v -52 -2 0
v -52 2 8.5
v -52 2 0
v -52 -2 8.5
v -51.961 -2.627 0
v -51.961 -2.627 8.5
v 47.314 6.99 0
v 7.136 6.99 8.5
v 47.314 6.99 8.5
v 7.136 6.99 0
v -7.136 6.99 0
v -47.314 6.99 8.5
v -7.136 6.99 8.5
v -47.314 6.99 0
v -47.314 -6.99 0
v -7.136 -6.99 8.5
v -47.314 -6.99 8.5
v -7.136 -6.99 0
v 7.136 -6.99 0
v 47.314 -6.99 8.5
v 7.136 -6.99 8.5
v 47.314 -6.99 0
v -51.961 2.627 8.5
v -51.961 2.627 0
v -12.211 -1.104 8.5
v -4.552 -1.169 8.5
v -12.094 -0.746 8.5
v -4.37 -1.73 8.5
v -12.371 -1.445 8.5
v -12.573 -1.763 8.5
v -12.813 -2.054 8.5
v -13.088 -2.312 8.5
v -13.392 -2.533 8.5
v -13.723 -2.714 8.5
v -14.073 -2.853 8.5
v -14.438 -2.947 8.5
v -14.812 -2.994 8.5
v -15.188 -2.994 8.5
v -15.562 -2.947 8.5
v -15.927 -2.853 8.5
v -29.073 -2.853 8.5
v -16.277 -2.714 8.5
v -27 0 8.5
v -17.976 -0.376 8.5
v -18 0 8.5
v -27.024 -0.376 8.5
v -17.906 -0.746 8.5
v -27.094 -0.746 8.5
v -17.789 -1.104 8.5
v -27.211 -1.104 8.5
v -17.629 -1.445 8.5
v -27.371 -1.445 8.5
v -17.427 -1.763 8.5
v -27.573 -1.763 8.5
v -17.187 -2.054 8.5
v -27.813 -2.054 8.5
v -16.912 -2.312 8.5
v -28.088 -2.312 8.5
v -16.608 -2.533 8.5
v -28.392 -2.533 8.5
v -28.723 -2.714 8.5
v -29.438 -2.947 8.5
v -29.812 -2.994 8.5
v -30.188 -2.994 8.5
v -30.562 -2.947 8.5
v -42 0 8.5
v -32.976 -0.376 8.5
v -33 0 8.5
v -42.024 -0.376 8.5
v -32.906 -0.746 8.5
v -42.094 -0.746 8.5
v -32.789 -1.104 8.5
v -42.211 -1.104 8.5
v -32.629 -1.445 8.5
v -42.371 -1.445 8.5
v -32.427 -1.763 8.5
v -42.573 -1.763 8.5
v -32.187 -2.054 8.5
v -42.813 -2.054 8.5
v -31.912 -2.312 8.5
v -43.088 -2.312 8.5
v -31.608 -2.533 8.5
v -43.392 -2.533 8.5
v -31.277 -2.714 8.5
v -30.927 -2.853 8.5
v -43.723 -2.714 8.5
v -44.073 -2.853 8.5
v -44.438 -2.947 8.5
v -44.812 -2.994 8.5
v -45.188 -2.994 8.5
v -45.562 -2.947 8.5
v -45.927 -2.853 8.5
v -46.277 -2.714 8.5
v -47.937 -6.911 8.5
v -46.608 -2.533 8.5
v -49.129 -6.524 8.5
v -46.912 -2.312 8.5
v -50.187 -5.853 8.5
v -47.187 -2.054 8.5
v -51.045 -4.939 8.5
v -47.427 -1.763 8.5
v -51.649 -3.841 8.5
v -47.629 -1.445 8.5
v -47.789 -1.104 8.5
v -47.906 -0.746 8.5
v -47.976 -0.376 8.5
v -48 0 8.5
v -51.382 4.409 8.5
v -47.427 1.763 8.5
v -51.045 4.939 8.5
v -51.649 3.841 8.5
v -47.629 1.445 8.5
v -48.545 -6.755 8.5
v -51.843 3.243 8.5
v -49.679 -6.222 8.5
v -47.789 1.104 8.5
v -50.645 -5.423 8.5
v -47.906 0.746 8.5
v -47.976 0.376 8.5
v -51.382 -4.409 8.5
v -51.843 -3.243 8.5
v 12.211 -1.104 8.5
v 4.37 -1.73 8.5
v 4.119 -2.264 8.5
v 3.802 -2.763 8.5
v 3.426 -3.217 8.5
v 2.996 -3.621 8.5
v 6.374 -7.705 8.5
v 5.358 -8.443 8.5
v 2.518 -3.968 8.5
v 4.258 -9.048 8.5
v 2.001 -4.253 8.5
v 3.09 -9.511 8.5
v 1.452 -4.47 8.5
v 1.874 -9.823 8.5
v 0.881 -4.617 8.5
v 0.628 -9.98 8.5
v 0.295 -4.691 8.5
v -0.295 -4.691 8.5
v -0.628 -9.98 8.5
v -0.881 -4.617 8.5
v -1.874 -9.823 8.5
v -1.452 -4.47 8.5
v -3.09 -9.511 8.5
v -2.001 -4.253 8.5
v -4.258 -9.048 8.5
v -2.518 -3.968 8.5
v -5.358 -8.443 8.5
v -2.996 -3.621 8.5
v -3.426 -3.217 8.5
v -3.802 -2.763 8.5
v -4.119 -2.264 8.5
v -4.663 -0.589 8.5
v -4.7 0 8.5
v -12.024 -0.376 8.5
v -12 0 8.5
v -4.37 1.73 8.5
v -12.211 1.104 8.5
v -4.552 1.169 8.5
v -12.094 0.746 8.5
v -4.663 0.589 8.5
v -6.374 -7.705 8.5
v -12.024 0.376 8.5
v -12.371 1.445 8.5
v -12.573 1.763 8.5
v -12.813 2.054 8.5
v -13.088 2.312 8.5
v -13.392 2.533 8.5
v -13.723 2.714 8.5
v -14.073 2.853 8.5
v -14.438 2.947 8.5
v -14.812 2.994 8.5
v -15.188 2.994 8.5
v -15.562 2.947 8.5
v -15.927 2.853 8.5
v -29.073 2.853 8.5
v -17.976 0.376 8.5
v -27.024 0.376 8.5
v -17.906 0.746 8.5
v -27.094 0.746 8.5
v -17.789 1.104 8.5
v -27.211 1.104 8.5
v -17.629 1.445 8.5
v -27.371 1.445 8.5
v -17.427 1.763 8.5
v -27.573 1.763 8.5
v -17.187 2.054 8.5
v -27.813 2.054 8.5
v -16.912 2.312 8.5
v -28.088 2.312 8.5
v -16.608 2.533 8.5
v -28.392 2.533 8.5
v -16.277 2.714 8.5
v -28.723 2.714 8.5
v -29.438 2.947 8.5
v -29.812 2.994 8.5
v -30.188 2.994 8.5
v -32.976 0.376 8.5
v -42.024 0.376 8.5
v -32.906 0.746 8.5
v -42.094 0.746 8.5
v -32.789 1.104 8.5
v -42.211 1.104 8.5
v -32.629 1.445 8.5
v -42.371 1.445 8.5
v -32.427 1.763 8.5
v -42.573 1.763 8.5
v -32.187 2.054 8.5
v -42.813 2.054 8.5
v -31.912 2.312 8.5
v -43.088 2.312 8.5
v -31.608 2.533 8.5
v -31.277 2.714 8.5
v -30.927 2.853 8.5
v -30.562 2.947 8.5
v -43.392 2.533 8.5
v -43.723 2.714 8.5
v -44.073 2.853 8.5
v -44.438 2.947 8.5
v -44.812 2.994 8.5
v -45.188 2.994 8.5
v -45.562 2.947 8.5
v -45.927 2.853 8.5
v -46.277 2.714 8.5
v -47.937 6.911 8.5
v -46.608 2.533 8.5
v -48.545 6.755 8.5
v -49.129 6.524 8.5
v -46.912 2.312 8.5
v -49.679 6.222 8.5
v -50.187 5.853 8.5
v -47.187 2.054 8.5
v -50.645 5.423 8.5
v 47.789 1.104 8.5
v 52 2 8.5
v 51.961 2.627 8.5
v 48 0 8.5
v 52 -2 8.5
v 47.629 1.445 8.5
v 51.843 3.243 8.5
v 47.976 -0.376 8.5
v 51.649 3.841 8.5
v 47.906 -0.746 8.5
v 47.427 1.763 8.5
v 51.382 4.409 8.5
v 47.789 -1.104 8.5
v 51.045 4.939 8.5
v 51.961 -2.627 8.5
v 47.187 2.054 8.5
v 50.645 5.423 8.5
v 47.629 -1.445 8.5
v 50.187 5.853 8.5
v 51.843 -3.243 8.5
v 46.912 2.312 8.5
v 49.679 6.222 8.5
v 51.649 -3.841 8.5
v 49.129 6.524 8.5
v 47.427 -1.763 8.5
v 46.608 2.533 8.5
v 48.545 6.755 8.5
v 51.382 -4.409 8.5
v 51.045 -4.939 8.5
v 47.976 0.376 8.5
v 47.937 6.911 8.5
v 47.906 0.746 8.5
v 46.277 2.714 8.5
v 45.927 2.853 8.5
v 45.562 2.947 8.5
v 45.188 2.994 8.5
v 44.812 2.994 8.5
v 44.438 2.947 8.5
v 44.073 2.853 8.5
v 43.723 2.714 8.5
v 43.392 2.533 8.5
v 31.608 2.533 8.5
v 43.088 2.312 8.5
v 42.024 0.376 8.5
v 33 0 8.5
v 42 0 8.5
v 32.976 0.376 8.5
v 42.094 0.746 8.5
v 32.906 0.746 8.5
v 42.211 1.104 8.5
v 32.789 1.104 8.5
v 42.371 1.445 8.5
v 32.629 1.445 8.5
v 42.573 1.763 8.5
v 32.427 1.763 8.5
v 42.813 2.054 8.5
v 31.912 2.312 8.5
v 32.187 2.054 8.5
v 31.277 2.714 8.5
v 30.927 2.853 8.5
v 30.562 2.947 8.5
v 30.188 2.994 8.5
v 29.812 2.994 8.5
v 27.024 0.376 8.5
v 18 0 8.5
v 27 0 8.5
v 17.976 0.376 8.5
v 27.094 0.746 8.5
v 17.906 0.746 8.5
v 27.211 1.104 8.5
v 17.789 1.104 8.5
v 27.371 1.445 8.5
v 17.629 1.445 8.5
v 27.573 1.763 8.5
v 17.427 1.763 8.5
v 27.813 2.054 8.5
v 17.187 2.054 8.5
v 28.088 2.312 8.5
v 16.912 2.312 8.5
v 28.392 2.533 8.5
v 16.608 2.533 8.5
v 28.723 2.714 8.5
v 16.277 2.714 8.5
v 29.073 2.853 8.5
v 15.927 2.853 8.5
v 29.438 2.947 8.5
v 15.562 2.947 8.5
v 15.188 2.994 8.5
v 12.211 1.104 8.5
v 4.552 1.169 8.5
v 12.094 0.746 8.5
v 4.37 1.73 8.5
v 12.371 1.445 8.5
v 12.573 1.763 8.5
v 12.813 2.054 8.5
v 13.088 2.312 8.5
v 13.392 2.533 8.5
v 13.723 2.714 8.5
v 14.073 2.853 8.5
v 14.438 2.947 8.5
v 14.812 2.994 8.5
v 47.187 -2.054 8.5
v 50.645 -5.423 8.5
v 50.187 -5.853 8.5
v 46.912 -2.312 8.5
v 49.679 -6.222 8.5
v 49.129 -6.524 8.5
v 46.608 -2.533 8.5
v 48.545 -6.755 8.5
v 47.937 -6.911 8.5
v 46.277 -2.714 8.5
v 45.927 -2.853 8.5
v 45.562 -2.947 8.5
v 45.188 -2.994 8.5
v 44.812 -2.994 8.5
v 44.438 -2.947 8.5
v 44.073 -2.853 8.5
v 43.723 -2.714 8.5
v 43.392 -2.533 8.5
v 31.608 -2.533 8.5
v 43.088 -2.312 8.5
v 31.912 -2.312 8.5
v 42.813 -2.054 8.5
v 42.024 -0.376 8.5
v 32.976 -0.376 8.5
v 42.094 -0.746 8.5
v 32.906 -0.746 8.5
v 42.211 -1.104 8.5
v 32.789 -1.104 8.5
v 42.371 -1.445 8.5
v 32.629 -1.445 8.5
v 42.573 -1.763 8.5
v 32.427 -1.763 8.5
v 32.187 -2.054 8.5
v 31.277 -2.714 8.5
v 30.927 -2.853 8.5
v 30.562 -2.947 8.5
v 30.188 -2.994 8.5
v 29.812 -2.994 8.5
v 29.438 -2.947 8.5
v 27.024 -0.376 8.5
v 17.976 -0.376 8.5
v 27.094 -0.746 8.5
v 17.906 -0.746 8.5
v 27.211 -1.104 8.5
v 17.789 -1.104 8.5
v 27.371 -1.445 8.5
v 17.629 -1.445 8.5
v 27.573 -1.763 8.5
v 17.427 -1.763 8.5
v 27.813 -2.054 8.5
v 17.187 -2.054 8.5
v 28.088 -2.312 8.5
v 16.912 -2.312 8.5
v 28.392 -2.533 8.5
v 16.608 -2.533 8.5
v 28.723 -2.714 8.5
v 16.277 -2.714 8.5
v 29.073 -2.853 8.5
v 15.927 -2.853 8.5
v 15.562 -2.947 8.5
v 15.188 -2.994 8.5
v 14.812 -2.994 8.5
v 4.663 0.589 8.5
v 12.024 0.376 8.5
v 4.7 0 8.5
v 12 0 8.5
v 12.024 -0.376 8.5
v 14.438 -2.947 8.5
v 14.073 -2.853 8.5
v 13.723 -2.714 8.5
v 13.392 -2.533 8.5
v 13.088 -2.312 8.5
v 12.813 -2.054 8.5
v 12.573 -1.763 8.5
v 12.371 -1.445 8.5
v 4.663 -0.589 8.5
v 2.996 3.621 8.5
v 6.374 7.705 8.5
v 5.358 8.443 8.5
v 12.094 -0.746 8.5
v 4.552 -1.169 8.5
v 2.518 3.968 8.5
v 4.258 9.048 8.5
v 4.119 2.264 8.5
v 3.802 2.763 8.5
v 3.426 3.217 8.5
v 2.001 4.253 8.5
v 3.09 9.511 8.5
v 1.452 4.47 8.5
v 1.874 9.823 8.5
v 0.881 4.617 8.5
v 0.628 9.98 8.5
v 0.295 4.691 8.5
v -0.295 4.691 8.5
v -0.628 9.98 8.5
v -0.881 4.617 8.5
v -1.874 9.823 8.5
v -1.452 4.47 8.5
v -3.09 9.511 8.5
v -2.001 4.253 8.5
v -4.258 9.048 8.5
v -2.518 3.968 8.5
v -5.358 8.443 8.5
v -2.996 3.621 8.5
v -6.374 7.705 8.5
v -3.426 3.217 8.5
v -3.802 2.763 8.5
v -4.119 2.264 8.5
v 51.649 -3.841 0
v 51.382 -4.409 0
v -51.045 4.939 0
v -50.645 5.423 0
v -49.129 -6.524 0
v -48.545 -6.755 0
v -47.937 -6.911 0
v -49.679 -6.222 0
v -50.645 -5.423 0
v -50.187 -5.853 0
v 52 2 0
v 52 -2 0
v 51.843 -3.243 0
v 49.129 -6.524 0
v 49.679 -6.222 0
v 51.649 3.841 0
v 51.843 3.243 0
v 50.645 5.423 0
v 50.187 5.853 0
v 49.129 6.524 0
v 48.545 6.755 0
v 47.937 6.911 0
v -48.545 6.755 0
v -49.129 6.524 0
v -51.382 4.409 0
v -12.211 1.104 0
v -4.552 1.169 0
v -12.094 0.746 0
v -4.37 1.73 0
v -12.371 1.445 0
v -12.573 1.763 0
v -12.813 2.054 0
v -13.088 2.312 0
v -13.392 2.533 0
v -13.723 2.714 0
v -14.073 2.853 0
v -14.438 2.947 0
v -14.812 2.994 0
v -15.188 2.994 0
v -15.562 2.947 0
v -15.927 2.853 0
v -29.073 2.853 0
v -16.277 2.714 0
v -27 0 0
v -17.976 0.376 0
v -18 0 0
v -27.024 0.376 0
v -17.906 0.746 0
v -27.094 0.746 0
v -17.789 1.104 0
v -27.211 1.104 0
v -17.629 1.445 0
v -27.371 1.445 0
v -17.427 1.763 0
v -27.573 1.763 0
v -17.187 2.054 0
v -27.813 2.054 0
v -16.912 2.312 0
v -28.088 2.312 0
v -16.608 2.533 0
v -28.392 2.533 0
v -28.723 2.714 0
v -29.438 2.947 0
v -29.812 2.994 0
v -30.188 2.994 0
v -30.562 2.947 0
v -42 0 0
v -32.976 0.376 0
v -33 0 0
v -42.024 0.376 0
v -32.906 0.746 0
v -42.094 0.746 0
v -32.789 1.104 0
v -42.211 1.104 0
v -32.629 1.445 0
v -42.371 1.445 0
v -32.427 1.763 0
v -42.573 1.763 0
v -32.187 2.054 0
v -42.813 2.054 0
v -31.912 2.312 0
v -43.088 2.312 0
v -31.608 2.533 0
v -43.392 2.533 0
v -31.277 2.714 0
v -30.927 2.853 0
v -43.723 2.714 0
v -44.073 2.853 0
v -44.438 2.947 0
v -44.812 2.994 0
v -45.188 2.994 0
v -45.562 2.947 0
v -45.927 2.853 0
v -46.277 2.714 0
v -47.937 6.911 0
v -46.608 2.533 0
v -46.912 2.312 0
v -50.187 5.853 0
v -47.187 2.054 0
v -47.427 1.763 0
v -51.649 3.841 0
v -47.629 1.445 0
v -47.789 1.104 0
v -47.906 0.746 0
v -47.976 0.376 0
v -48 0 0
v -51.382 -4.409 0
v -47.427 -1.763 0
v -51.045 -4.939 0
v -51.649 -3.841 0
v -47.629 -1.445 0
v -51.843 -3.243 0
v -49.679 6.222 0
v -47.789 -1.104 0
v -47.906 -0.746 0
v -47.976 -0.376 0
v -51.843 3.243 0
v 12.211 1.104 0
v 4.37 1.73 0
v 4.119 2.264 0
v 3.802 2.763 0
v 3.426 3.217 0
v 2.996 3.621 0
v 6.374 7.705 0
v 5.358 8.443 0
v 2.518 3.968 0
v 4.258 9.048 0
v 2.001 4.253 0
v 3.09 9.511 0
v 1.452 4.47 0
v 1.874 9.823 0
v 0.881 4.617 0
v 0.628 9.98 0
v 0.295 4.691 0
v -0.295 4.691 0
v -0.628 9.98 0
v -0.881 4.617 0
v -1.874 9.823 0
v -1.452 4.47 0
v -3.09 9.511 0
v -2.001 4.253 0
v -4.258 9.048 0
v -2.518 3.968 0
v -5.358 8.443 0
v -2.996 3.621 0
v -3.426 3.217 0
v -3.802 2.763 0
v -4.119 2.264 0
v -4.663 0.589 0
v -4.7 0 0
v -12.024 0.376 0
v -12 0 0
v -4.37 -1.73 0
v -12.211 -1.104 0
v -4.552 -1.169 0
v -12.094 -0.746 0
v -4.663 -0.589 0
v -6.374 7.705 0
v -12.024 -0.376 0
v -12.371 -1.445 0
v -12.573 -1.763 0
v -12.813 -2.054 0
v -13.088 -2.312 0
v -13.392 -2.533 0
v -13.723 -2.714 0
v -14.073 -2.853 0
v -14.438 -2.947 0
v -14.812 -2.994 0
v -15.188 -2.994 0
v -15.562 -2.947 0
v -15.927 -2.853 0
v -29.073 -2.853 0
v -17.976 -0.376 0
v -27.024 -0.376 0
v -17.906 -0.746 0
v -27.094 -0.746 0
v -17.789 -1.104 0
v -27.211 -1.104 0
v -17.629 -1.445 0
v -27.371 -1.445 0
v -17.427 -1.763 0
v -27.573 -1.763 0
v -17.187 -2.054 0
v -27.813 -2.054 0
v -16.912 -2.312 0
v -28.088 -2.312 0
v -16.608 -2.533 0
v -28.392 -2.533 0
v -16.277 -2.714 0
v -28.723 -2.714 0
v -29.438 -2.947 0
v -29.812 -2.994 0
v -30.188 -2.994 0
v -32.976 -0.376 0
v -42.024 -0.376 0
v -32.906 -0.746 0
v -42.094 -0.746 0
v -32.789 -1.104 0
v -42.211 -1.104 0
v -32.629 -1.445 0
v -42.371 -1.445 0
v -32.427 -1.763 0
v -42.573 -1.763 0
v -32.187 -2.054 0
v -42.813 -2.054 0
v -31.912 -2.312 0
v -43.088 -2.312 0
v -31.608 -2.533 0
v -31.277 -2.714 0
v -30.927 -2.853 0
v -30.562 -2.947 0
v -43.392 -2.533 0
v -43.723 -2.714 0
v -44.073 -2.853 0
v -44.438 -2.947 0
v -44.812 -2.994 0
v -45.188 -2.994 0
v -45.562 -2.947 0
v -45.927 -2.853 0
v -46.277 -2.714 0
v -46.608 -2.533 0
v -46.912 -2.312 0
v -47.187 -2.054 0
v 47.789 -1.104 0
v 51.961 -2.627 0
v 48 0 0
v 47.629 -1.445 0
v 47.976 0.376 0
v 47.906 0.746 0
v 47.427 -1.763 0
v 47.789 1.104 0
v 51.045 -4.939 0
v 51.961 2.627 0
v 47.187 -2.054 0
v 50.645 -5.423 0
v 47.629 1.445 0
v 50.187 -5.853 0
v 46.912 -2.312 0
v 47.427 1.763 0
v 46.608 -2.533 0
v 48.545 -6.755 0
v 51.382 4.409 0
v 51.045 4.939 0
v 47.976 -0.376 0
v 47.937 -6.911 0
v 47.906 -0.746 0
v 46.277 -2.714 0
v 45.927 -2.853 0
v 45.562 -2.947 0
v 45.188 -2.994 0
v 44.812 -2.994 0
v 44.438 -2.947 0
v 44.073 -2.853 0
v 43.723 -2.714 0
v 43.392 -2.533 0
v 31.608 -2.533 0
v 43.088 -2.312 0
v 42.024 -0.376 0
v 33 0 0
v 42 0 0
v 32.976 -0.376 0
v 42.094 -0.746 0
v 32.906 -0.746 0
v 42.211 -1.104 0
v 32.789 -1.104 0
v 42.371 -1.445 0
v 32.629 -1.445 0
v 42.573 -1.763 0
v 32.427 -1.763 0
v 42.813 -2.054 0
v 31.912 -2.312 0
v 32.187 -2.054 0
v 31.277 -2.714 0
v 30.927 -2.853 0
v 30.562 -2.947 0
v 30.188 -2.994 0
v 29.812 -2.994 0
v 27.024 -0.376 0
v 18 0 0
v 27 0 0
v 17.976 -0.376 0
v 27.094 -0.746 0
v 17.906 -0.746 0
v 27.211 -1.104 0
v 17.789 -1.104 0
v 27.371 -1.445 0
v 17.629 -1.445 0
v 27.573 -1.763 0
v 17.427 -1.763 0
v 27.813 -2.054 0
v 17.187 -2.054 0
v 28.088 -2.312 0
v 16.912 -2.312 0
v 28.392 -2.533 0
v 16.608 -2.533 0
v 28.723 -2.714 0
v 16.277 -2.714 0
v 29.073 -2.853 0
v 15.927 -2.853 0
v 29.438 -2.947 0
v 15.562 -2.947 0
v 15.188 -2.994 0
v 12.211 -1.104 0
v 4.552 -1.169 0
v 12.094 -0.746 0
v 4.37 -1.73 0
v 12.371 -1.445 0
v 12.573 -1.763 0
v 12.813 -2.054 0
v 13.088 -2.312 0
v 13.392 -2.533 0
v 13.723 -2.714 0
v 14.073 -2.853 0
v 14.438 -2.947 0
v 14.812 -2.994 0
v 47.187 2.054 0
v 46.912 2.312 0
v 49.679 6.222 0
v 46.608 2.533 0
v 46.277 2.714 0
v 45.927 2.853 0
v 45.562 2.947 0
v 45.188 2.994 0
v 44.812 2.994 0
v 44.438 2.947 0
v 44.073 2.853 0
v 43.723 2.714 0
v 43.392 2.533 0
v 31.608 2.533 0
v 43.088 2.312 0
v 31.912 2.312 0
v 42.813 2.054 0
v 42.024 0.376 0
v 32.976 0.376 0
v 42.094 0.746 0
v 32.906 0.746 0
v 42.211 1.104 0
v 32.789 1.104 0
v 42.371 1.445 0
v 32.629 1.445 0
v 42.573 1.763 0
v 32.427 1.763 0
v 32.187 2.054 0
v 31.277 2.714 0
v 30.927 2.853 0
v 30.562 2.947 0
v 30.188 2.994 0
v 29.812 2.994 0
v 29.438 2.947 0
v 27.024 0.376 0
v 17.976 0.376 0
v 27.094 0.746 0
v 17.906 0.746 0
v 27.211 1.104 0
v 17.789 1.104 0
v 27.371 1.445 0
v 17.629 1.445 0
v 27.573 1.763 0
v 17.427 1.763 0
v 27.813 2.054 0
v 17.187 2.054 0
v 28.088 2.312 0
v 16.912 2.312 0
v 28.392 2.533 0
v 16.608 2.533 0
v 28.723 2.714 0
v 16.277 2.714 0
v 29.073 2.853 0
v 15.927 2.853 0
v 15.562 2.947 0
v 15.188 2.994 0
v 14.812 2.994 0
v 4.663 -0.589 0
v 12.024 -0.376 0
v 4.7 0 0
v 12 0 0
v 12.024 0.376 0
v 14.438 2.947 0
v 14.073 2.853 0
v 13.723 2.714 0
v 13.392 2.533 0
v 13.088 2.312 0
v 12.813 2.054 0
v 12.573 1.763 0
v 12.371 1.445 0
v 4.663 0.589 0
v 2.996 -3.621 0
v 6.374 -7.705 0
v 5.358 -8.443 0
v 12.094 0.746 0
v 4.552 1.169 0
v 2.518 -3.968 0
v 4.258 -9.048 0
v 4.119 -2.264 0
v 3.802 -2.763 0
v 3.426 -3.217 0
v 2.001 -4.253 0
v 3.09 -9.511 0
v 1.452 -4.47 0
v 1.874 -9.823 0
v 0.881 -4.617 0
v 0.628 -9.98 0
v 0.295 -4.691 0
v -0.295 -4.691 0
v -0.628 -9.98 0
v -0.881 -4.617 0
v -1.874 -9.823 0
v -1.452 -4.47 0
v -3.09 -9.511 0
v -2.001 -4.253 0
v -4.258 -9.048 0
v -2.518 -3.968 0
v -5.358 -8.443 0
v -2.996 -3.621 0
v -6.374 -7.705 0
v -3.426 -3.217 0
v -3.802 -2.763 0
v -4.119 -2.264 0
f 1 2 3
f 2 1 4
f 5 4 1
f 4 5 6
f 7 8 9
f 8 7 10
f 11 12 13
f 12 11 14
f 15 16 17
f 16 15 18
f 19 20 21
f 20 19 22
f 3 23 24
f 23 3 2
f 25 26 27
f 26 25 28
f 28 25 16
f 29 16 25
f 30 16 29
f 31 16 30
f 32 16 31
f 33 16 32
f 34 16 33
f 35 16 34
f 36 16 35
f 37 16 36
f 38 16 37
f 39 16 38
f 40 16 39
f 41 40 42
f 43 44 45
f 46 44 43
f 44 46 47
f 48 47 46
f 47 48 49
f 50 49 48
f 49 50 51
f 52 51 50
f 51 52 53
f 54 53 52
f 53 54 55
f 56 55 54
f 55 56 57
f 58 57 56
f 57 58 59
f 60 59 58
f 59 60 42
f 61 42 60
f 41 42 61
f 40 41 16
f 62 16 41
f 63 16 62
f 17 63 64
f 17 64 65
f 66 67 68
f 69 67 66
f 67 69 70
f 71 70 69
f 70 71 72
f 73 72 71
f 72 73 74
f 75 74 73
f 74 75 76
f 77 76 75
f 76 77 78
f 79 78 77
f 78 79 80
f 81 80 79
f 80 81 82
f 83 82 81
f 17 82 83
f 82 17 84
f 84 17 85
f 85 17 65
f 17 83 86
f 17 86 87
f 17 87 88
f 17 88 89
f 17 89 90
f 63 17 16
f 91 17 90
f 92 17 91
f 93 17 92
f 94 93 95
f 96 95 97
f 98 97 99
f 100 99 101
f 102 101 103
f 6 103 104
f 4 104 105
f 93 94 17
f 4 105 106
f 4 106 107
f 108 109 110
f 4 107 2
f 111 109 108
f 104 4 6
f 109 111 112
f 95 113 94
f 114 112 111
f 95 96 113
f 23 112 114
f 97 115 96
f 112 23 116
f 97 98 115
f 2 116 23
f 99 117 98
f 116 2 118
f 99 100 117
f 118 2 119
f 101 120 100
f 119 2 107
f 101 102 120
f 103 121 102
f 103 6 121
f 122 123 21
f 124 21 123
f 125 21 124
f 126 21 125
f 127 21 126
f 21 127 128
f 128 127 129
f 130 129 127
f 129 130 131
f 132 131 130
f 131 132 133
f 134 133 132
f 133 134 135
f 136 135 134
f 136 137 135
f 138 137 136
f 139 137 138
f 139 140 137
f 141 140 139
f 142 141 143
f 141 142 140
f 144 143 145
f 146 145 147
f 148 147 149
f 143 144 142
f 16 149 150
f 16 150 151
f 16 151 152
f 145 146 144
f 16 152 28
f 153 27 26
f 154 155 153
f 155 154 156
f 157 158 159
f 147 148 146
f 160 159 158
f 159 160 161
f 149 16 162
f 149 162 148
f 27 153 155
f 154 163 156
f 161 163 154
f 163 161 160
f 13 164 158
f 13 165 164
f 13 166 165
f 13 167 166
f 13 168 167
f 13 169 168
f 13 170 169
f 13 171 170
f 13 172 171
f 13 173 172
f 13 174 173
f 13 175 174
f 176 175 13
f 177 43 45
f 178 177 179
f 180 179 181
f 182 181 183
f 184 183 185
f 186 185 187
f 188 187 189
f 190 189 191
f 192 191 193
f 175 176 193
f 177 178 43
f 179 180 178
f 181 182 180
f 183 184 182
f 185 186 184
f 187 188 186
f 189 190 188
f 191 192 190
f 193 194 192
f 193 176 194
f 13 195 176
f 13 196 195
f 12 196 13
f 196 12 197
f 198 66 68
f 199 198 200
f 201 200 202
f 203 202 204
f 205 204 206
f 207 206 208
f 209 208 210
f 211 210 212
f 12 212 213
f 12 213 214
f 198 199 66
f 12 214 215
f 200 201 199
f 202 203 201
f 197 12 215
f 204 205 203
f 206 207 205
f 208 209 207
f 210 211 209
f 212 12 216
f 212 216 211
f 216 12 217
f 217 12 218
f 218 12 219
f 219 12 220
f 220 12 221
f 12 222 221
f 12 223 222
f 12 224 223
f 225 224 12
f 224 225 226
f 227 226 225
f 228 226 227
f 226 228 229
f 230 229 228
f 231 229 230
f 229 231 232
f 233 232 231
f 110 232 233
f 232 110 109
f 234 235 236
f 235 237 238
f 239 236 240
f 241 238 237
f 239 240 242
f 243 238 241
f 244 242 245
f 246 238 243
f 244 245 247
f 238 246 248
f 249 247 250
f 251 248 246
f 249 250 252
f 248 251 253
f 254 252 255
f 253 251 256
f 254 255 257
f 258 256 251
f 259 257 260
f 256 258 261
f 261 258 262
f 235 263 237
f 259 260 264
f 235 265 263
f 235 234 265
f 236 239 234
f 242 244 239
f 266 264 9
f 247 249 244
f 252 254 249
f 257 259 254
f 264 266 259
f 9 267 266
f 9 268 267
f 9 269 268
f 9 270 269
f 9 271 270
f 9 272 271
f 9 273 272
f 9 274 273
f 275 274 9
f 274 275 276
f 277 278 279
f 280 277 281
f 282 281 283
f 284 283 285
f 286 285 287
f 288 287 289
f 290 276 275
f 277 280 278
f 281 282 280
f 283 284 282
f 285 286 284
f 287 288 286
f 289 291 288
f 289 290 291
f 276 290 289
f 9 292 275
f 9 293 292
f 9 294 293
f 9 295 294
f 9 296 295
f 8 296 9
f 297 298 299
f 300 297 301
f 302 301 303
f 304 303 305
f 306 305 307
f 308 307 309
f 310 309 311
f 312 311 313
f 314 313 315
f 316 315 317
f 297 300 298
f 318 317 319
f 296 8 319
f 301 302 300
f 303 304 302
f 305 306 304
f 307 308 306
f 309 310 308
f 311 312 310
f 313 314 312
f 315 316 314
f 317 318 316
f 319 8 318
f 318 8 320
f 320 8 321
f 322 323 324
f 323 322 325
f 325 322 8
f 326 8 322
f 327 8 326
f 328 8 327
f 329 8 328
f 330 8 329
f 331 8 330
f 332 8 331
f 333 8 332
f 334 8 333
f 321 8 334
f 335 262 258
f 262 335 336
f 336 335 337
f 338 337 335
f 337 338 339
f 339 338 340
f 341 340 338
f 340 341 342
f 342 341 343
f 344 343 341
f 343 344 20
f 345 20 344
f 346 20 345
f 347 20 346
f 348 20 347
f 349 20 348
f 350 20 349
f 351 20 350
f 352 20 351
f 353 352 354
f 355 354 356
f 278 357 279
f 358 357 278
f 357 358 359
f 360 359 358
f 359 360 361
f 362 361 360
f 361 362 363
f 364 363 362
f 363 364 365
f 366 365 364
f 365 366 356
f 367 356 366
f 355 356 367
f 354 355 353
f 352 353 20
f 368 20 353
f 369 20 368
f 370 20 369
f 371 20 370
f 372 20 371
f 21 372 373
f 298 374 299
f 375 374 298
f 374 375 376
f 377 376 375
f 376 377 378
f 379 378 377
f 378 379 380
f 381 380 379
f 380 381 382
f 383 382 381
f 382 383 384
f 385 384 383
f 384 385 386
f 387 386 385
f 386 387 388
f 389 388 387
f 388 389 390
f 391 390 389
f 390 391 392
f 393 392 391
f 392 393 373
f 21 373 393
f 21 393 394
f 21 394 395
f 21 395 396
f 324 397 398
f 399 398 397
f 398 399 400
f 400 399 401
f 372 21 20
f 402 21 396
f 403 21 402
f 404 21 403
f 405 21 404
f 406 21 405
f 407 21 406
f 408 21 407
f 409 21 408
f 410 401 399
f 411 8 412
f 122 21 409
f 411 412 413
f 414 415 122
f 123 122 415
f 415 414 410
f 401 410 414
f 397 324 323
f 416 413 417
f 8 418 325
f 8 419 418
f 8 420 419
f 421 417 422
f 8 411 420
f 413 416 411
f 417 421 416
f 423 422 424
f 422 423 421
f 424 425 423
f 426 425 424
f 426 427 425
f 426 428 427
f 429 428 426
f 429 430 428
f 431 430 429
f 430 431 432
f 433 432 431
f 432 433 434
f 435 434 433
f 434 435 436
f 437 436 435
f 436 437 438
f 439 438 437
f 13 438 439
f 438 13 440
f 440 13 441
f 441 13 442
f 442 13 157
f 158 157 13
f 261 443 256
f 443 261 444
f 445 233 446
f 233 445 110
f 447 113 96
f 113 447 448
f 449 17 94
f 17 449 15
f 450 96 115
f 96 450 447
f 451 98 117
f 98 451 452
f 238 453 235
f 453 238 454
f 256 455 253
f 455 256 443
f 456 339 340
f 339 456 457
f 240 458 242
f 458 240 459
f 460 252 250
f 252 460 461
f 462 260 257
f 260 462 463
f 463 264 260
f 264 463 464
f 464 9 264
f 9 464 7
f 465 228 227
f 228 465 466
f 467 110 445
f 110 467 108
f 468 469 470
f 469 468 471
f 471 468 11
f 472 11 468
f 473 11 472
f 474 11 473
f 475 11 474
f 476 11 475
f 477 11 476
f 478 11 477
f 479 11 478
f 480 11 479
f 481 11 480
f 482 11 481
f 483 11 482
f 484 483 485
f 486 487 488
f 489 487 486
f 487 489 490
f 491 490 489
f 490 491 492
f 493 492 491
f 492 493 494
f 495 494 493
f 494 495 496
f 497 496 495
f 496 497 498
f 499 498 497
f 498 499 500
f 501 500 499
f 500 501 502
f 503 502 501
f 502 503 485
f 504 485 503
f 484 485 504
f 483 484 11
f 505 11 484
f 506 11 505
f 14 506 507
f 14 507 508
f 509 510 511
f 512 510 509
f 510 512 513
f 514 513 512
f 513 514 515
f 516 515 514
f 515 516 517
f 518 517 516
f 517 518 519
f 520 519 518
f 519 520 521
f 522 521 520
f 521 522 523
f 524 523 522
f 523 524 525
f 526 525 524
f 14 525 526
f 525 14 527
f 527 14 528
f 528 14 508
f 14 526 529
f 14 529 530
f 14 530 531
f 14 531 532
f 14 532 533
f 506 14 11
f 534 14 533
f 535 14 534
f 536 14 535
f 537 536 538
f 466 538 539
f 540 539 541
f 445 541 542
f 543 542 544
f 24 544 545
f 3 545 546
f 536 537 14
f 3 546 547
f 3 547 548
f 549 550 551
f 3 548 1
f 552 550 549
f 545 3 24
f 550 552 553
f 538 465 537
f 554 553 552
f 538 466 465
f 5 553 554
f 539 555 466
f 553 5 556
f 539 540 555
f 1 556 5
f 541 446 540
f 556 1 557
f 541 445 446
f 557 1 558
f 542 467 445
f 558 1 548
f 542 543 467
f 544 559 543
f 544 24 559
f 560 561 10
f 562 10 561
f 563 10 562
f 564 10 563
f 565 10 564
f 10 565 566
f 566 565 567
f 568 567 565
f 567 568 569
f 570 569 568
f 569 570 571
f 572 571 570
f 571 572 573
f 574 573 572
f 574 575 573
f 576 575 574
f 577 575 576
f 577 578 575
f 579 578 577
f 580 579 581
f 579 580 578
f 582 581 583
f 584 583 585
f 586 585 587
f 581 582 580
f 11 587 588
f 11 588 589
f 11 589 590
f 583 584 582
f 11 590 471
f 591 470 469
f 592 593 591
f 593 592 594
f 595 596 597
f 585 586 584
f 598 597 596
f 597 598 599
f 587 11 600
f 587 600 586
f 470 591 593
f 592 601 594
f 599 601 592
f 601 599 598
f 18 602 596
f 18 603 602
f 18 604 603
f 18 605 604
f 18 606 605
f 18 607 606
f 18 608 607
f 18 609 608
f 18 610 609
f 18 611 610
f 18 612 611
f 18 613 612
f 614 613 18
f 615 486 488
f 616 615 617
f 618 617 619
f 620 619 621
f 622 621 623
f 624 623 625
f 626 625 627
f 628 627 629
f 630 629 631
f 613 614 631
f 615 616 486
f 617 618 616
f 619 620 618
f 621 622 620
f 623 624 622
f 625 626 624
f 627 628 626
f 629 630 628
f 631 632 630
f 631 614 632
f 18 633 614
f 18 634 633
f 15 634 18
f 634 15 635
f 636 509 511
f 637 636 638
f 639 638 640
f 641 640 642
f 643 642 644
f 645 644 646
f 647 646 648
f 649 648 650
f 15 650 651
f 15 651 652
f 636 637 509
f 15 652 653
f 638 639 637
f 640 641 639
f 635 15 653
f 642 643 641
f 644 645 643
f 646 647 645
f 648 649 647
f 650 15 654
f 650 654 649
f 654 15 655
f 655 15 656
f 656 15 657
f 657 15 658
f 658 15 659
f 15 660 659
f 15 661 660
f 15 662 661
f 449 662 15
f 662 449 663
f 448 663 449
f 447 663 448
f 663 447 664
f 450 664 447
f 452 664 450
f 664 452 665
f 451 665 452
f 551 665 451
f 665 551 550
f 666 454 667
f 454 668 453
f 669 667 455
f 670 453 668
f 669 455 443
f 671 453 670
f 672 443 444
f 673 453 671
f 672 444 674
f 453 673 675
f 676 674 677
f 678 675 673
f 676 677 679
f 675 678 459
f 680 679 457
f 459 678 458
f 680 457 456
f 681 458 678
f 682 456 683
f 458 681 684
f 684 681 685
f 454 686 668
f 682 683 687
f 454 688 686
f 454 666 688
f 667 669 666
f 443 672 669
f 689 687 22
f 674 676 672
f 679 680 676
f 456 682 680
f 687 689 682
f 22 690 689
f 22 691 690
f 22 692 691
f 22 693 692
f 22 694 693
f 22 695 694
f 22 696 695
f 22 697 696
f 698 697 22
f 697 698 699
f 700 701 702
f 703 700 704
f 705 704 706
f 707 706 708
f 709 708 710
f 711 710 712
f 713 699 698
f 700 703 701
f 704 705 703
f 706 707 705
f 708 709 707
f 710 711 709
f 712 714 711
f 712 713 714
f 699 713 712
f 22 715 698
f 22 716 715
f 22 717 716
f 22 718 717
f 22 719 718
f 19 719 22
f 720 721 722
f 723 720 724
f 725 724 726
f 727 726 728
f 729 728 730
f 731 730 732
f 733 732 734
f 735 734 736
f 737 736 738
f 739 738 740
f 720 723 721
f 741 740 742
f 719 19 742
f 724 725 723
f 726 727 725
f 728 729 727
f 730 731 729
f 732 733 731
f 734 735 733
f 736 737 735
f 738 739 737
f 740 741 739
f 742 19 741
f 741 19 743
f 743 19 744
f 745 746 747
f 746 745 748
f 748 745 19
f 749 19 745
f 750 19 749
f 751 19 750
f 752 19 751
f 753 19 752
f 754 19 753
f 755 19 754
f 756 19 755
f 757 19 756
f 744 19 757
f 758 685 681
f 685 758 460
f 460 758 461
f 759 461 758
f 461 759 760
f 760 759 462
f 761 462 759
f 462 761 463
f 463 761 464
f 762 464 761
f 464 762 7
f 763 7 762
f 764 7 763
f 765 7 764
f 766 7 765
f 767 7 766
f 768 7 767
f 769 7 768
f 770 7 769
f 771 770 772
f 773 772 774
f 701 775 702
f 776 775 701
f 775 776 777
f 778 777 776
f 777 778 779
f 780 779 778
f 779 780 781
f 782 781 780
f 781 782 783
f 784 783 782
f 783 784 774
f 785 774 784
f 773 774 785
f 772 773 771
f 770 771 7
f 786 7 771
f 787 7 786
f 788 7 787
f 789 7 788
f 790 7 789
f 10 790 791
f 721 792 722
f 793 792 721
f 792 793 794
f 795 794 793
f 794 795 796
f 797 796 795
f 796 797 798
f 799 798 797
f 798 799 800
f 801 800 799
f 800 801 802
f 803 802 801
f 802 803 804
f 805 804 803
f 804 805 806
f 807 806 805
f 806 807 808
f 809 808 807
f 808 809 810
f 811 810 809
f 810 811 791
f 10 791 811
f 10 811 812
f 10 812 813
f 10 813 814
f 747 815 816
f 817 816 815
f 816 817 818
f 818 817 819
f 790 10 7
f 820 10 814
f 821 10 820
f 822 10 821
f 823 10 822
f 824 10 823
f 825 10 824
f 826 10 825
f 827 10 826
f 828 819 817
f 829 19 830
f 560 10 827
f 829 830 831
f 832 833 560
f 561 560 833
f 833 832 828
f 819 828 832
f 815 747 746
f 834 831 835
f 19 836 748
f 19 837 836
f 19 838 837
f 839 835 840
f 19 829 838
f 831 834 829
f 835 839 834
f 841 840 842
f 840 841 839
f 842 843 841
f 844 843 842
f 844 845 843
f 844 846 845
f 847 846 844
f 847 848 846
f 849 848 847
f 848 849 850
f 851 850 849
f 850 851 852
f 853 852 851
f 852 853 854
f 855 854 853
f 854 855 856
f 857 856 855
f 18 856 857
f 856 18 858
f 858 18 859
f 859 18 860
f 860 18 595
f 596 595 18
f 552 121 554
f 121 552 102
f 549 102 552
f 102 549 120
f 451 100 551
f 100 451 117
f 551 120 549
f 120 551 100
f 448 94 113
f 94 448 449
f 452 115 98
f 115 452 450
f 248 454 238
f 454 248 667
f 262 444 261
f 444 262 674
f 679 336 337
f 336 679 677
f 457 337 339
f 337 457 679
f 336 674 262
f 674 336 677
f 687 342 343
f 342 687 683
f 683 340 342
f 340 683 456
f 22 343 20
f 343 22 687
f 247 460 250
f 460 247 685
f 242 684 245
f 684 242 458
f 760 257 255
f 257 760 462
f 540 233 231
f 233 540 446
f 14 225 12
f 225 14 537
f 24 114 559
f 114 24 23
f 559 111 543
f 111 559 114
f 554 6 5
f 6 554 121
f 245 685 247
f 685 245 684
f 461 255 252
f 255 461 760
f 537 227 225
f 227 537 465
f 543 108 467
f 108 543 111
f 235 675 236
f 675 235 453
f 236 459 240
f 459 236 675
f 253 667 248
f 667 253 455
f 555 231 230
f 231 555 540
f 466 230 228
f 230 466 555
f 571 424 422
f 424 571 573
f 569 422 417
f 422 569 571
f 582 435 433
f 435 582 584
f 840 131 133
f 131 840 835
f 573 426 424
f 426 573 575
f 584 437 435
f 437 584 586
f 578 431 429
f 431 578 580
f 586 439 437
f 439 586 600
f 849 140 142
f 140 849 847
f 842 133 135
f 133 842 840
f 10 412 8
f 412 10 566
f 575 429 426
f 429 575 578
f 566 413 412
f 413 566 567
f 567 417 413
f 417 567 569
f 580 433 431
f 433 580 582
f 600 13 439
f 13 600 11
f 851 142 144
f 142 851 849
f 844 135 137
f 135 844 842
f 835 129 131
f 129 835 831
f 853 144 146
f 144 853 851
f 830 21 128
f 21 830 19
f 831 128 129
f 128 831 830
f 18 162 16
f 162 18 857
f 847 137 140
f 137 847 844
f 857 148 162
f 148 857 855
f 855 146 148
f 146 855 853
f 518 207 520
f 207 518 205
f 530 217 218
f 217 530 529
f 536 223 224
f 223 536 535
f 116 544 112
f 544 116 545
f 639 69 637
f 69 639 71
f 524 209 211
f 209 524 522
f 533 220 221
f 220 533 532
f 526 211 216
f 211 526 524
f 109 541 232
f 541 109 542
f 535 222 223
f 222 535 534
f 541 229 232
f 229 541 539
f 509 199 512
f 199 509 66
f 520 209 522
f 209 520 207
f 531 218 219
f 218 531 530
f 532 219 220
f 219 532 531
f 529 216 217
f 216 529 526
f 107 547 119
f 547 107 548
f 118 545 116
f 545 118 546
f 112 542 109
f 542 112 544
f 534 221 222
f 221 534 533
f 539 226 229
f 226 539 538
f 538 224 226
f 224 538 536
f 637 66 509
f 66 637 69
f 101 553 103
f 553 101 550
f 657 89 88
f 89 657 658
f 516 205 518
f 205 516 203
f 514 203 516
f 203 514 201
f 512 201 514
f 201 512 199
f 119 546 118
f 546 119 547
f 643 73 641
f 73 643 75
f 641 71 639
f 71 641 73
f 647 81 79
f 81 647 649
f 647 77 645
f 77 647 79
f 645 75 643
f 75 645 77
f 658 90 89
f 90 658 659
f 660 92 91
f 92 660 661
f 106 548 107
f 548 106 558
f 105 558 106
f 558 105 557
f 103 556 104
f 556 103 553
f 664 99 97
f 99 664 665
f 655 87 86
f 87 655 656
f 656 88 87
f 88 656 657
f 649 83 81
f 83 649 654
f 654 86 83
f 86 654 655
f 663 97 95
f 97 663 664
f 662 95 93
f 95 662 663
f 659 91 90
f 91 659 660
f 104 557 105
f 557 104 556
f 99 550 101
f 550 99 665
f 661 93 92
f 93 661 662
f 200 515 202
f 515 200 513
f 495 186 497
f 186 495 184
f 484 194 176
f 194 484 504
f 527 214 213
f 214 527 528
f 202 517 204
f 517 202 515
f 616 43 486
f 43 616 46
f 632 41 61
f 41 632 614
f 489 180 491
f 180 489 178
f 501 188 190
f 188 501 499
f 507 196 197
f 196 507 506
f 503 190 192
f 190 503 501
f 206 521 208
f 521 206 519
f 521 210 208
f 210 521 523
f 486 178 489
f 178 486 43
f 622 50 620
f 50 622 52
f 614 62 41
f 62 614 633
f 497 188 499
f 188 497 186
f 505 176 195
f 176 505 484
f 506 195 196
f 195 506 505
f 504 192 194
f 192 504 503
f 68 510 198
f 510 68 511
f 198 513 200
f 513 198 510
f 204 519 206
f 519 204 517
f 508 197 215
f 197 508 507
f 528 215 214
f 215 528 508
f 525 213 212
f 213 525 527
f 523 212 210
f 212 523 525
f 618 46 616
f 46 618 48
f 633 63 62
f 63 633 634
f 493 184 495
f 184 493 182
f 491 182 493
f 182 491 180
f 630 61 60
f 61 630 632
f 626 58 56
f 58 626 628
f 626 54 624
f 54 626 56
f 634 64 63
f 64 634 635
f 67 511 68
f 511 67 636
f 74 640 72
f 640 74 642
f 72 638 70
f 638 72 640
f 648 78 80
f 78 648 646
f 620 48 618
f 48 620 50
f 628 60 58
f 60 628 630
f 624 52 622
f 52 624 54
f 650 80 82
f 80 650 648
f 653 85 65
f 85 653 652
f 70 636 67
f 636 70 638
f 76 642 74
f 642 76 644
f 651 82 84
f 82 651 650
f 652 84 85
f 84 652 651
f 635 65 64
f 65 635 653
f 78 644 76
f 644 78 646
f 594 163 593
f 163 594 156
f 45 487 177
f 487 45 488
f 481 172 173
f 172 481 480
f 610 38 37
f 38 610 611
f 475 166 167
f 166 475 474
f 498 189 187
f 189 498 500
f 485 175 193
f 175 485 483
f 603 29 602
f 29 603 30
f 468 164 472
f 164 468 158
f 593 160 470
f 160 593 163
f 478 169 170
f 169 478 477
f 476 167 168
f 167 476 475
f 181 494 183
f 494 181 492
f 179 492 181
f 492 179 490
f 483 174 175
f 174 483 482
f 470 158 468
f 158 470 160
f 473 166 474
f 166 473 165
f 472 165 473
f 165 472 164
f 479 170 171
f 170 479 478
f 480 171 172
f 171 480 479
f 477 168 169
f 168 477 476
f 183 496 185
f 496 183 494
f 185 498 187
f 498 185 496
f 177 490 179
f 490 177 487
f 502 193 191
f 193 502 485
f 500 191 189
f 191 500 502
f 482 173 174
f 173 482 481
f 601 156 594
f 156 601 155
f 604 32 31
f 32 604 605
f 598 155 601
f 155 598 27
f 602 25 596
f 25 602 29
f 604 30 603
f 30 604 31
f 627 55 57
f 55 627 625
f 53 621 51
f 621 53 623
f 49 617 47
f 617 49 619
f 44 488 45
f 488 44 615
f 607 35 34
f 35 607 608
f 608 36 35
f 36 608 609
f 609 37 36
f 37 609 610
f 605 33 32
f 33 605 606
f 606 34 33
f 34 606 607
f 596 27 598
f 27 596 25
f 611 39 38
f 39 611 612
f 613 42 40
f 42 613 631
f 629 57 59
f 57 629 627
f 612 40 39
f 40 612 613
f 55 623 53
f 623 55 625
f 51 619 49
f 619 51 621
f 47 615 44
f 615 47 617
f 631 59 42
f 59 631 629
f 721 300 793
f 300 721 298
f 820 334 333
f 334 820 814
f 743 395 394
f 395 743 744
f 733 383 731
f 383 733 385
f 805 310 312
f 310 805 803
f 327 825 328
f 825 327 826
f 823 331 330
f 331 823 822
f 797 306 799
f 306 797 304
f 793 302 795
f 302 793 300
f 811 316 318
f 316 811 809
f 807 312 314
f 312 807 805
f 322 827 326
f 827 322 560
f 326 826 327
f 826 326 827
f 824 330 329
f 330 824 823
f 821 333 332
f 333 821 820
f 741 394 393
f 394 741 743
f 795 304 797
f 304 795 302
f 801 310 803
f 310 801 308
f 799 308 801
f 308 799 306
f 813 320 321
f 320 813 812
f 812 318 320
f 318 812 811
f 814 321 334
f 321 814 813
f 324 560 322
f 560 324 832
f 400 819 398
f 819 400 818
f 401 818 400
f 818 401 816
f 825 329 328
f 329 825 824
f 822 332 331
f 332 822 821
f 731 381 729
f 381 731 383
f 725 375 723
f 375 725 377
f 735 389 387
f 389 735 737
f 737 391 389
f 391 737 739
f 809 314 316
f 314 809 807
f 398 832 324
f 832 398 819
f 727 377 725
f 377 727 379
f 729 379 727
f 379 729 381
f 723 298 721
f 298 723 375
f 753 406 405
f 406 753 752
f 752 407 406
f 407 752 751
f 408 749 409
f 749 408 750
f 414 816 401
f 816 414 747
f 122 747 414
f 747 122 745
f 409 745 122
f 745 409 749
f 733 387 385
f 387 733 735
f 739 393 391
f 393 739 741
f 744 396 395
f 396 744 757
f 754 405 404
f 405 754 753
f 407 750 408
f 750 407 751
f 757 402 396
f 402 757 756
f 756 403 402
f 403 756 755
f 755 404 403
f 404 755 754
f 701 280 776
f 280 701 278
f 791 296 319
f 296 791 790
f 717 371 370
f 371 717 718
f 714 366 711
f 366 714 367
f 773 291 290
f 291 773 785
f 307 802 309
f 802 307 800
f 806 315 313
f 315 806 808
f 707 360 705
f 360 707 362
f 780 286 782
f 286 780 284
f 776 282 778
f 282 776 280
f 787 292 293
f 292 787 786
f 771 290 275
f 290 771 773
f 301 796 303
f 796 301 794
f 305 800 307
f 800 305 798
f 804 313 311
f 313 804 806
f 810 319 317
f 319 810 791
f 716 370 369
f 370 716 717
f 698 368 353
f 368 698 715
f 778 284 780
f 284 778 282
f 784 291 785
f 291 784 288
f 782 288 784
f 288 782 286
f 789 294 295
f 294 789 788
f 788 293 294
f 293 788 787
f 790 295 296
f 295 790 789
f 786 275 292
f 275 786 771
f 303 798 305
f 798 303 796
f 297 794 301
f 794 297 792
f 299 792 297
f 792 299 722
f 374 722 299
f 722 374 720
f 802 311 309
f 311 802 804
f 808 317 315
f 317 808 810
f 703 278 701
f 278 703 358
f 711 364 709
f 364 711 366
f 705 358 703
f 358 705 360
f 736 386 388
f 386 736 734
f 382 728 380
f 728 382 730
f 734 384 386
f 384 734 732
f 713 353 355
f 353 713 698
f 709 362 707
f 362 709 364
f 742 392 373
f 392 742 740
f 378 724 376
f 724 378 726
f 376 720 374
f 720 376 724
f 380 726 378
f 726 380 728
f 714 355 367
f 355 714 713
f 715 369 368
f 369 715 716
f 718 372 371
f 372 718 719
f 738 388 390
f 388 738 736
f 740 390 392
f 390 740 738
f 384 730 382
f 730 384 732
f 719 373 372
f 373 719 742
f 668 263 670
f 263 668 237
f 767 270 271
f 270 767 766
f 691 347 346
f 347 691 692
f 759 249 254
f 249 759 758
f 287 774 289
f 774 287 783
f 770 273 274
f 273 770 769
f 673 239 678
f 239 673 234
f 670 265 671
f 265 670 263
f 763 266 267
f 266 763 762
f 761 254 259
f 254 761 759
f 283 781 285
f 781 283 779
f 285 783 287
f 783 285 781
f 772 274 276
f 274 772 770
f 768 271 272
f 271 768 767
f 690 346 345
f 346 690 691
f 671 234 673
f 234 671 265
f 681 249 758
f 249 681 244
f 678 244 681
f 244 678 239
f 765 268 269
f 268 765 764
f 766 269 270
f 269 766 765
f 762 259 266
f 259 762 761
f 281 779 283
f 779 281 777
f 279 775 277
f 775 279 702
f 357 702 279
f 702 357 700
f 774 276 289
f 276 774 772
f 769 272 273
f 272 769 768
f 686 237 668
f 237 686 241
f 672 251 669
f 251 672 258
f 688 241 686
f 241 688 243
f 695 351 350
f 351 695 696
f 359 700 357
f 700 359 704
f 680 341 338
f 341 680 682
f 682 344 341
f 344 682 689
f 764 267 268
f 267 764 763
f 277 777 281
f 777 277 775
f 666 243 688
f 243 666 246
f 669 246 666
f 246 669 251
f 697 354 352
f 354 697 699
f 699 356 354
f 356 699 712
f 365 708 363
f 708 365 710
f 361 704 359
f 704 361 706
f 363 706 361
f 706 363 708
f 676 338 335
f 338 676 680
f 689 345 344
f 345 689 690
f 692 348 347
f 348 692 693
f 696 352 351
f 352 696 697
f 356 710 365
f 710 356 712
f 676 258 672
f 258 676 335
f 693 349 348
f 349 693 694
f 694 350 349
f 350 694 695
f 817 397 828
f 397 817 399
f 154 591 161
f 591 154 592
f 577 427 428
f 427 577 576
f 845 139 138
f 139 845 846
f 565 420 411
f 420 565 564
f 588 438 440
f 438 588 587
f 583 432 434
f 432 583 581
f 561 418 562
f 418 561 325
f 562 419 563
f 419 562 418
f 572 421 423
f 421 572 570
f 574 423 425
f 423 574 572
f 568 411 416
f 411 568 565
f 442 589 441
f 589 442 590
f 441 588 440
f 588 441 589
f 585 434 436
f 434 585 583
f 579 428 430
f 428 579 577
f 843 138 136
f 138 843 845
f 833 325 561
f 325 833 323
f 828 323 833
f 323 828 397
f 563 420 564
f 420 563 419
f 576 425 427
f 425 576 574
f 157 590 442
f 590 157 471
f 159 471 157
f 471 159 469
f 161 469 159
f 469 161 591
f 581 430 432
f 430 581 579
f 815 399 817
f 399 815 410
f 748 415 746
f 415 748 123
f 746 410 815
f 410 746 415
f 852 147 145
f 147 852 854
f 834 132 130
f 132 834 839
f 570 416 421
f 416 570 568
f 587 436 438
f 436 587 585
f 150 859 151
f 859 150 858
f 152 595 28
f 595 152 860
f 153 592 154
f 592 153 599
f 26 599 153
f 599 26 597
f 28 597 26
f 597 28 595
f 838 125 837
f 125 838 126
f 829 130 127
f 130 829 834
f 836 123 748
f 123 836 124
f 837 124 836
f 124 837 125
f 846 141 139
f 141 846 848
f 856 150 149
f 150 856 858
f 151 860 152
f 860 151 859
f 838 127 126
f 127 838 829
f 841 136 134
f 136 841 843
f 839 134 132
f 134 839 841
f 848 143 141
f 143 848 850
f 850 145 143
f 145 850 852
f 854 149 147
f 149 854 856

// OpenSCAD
$fn = 50;


difference() {
	union() {
		translate(v = [0, 0, 0]) {
			rotate(a = [0, 0, 0]) {
				hull() {
					translate(v = [-47.0000000000, 2.0000000000, 0]) {
						rotate(a = [0, 0, 0]) {
							translate(v = [0, 0, 0]) {
								rotate(a = [0, 0, 0]) {
									cylinder(h = 8.5000000000, r = 5);
								}
							}
						}
					}
					translate(v = [47.0000000000, 2.0000000000, 0]) {
						rotate(a = [0, 0, 0]) {
							translate(v = [0, 0, 0]) {
								rotate(a = [0, 0, 0]) {
									cylinder(h = 8.5000000000, r = 5);
								}
							}
						}
					}
					translate(v = [-47.0000000000, -2.0000000000, 0]) {
						rotate(a = [0, 0, 0]) {
							translate(v = [0, 0, 0]) {
								rotate(a = [0, 0, 0]) {
									cylinder(h = 8.5000000000, r = 5);
								}
							}
						}
					}
					translate(v = [47.0000000000, -2.0000000000, 0]) {
						rotate(a = [0, 0, 0]) {
							translate(v = [0, 0, 0]) {
								rotate(a = [0, 0, 0]) {
									cylinder(h = 8.5000000000, r = 5);
								}
							}
						}
					}
				}
			}
		}
		translate(v = [0, 0, 0.0000000000]) {
			rotate(a = [0, 0, 0]) {
				cylinder(h = 8.5000000000, r = 10.0000000000);
			}
		}
	}
	union() {
		translate(v = [-45.0000000000, 0.0000000000, 0]) {
			rotate(a = [0, 0, 0]) {
				translate(v = [0, 0, -50]) {
					rotate(a = [0, 0, 0]) {
						cylinder(h = 100, r = 3.0000000000);
					}
				}
			}
		}
		translate(v = [-30.0000000000, 0.0000000000, 0]) {
			rotate(a = [0, 0, 0]) {
				translate(v = [0, 0, -50]) {
					rotate(a = [0, 0, 0]) {
						cylinder(h = 100, r = 3.0000000000);
					}
				}
			}
		}
		translate(v = [-15.0000000000, 0.0000000000, 0]) {
			rotate(a = [0, 0, 0]) {
				translate(v = [0, 0, -50]) {
					rotate(a = [0, 0, 0]) {
						cylinder(h = 100, r = 3.0000000000);
					}
				}
			}
		}
		translate(v = [0.0000000000, 0.0000000000, 0]) {
			rotate(a = [0, 0, 0]) {
				translate(v = [0, 0, -50]) {
					rotate(a = [0, 0, 0]) {
						cylinder(h = 100, r = 3.0000000000);
					}
				}
			}
		}
		translate(v = [15.0000000000, 0.0000000000, 0]) {
			rotate(a = [0, 0, 0]) {
				translate(v = [0, 0, -50]) {
					rotate(a = [0, 0, 0]) {
						cylinder(h = 100, r = 3.0000000000);
					}
				}
			}
		}
		translate(v = [30.0000000000, 0.0000000000, 0]) {
			rotate(a = [0, 0, 0]) {
				translate(v = [0, 0, -50]) {
					rotate(a = [0, 0, 0]) {
						cylinder(h = 100, r = 3.0000000000);
					}
				}
			}
		}
		translate(v = [45.0000000000, 0.0000000000, 0]) {
			rotate(a = [0, 0, 0]) {
				translate(v = [0, 0, -50]) {
					rotate(a = [0, 0, 0]) {
						cylinder(h = 100, r = 3.0000000000);
					}
				}
			}
		}
		translate(v = [0, 0, -125.0000000000]) {
			rotate(a = [0, 0, 0]) {
				cylinder(h = 250, r = 4.7000000000);
			}
		}
	}
}
